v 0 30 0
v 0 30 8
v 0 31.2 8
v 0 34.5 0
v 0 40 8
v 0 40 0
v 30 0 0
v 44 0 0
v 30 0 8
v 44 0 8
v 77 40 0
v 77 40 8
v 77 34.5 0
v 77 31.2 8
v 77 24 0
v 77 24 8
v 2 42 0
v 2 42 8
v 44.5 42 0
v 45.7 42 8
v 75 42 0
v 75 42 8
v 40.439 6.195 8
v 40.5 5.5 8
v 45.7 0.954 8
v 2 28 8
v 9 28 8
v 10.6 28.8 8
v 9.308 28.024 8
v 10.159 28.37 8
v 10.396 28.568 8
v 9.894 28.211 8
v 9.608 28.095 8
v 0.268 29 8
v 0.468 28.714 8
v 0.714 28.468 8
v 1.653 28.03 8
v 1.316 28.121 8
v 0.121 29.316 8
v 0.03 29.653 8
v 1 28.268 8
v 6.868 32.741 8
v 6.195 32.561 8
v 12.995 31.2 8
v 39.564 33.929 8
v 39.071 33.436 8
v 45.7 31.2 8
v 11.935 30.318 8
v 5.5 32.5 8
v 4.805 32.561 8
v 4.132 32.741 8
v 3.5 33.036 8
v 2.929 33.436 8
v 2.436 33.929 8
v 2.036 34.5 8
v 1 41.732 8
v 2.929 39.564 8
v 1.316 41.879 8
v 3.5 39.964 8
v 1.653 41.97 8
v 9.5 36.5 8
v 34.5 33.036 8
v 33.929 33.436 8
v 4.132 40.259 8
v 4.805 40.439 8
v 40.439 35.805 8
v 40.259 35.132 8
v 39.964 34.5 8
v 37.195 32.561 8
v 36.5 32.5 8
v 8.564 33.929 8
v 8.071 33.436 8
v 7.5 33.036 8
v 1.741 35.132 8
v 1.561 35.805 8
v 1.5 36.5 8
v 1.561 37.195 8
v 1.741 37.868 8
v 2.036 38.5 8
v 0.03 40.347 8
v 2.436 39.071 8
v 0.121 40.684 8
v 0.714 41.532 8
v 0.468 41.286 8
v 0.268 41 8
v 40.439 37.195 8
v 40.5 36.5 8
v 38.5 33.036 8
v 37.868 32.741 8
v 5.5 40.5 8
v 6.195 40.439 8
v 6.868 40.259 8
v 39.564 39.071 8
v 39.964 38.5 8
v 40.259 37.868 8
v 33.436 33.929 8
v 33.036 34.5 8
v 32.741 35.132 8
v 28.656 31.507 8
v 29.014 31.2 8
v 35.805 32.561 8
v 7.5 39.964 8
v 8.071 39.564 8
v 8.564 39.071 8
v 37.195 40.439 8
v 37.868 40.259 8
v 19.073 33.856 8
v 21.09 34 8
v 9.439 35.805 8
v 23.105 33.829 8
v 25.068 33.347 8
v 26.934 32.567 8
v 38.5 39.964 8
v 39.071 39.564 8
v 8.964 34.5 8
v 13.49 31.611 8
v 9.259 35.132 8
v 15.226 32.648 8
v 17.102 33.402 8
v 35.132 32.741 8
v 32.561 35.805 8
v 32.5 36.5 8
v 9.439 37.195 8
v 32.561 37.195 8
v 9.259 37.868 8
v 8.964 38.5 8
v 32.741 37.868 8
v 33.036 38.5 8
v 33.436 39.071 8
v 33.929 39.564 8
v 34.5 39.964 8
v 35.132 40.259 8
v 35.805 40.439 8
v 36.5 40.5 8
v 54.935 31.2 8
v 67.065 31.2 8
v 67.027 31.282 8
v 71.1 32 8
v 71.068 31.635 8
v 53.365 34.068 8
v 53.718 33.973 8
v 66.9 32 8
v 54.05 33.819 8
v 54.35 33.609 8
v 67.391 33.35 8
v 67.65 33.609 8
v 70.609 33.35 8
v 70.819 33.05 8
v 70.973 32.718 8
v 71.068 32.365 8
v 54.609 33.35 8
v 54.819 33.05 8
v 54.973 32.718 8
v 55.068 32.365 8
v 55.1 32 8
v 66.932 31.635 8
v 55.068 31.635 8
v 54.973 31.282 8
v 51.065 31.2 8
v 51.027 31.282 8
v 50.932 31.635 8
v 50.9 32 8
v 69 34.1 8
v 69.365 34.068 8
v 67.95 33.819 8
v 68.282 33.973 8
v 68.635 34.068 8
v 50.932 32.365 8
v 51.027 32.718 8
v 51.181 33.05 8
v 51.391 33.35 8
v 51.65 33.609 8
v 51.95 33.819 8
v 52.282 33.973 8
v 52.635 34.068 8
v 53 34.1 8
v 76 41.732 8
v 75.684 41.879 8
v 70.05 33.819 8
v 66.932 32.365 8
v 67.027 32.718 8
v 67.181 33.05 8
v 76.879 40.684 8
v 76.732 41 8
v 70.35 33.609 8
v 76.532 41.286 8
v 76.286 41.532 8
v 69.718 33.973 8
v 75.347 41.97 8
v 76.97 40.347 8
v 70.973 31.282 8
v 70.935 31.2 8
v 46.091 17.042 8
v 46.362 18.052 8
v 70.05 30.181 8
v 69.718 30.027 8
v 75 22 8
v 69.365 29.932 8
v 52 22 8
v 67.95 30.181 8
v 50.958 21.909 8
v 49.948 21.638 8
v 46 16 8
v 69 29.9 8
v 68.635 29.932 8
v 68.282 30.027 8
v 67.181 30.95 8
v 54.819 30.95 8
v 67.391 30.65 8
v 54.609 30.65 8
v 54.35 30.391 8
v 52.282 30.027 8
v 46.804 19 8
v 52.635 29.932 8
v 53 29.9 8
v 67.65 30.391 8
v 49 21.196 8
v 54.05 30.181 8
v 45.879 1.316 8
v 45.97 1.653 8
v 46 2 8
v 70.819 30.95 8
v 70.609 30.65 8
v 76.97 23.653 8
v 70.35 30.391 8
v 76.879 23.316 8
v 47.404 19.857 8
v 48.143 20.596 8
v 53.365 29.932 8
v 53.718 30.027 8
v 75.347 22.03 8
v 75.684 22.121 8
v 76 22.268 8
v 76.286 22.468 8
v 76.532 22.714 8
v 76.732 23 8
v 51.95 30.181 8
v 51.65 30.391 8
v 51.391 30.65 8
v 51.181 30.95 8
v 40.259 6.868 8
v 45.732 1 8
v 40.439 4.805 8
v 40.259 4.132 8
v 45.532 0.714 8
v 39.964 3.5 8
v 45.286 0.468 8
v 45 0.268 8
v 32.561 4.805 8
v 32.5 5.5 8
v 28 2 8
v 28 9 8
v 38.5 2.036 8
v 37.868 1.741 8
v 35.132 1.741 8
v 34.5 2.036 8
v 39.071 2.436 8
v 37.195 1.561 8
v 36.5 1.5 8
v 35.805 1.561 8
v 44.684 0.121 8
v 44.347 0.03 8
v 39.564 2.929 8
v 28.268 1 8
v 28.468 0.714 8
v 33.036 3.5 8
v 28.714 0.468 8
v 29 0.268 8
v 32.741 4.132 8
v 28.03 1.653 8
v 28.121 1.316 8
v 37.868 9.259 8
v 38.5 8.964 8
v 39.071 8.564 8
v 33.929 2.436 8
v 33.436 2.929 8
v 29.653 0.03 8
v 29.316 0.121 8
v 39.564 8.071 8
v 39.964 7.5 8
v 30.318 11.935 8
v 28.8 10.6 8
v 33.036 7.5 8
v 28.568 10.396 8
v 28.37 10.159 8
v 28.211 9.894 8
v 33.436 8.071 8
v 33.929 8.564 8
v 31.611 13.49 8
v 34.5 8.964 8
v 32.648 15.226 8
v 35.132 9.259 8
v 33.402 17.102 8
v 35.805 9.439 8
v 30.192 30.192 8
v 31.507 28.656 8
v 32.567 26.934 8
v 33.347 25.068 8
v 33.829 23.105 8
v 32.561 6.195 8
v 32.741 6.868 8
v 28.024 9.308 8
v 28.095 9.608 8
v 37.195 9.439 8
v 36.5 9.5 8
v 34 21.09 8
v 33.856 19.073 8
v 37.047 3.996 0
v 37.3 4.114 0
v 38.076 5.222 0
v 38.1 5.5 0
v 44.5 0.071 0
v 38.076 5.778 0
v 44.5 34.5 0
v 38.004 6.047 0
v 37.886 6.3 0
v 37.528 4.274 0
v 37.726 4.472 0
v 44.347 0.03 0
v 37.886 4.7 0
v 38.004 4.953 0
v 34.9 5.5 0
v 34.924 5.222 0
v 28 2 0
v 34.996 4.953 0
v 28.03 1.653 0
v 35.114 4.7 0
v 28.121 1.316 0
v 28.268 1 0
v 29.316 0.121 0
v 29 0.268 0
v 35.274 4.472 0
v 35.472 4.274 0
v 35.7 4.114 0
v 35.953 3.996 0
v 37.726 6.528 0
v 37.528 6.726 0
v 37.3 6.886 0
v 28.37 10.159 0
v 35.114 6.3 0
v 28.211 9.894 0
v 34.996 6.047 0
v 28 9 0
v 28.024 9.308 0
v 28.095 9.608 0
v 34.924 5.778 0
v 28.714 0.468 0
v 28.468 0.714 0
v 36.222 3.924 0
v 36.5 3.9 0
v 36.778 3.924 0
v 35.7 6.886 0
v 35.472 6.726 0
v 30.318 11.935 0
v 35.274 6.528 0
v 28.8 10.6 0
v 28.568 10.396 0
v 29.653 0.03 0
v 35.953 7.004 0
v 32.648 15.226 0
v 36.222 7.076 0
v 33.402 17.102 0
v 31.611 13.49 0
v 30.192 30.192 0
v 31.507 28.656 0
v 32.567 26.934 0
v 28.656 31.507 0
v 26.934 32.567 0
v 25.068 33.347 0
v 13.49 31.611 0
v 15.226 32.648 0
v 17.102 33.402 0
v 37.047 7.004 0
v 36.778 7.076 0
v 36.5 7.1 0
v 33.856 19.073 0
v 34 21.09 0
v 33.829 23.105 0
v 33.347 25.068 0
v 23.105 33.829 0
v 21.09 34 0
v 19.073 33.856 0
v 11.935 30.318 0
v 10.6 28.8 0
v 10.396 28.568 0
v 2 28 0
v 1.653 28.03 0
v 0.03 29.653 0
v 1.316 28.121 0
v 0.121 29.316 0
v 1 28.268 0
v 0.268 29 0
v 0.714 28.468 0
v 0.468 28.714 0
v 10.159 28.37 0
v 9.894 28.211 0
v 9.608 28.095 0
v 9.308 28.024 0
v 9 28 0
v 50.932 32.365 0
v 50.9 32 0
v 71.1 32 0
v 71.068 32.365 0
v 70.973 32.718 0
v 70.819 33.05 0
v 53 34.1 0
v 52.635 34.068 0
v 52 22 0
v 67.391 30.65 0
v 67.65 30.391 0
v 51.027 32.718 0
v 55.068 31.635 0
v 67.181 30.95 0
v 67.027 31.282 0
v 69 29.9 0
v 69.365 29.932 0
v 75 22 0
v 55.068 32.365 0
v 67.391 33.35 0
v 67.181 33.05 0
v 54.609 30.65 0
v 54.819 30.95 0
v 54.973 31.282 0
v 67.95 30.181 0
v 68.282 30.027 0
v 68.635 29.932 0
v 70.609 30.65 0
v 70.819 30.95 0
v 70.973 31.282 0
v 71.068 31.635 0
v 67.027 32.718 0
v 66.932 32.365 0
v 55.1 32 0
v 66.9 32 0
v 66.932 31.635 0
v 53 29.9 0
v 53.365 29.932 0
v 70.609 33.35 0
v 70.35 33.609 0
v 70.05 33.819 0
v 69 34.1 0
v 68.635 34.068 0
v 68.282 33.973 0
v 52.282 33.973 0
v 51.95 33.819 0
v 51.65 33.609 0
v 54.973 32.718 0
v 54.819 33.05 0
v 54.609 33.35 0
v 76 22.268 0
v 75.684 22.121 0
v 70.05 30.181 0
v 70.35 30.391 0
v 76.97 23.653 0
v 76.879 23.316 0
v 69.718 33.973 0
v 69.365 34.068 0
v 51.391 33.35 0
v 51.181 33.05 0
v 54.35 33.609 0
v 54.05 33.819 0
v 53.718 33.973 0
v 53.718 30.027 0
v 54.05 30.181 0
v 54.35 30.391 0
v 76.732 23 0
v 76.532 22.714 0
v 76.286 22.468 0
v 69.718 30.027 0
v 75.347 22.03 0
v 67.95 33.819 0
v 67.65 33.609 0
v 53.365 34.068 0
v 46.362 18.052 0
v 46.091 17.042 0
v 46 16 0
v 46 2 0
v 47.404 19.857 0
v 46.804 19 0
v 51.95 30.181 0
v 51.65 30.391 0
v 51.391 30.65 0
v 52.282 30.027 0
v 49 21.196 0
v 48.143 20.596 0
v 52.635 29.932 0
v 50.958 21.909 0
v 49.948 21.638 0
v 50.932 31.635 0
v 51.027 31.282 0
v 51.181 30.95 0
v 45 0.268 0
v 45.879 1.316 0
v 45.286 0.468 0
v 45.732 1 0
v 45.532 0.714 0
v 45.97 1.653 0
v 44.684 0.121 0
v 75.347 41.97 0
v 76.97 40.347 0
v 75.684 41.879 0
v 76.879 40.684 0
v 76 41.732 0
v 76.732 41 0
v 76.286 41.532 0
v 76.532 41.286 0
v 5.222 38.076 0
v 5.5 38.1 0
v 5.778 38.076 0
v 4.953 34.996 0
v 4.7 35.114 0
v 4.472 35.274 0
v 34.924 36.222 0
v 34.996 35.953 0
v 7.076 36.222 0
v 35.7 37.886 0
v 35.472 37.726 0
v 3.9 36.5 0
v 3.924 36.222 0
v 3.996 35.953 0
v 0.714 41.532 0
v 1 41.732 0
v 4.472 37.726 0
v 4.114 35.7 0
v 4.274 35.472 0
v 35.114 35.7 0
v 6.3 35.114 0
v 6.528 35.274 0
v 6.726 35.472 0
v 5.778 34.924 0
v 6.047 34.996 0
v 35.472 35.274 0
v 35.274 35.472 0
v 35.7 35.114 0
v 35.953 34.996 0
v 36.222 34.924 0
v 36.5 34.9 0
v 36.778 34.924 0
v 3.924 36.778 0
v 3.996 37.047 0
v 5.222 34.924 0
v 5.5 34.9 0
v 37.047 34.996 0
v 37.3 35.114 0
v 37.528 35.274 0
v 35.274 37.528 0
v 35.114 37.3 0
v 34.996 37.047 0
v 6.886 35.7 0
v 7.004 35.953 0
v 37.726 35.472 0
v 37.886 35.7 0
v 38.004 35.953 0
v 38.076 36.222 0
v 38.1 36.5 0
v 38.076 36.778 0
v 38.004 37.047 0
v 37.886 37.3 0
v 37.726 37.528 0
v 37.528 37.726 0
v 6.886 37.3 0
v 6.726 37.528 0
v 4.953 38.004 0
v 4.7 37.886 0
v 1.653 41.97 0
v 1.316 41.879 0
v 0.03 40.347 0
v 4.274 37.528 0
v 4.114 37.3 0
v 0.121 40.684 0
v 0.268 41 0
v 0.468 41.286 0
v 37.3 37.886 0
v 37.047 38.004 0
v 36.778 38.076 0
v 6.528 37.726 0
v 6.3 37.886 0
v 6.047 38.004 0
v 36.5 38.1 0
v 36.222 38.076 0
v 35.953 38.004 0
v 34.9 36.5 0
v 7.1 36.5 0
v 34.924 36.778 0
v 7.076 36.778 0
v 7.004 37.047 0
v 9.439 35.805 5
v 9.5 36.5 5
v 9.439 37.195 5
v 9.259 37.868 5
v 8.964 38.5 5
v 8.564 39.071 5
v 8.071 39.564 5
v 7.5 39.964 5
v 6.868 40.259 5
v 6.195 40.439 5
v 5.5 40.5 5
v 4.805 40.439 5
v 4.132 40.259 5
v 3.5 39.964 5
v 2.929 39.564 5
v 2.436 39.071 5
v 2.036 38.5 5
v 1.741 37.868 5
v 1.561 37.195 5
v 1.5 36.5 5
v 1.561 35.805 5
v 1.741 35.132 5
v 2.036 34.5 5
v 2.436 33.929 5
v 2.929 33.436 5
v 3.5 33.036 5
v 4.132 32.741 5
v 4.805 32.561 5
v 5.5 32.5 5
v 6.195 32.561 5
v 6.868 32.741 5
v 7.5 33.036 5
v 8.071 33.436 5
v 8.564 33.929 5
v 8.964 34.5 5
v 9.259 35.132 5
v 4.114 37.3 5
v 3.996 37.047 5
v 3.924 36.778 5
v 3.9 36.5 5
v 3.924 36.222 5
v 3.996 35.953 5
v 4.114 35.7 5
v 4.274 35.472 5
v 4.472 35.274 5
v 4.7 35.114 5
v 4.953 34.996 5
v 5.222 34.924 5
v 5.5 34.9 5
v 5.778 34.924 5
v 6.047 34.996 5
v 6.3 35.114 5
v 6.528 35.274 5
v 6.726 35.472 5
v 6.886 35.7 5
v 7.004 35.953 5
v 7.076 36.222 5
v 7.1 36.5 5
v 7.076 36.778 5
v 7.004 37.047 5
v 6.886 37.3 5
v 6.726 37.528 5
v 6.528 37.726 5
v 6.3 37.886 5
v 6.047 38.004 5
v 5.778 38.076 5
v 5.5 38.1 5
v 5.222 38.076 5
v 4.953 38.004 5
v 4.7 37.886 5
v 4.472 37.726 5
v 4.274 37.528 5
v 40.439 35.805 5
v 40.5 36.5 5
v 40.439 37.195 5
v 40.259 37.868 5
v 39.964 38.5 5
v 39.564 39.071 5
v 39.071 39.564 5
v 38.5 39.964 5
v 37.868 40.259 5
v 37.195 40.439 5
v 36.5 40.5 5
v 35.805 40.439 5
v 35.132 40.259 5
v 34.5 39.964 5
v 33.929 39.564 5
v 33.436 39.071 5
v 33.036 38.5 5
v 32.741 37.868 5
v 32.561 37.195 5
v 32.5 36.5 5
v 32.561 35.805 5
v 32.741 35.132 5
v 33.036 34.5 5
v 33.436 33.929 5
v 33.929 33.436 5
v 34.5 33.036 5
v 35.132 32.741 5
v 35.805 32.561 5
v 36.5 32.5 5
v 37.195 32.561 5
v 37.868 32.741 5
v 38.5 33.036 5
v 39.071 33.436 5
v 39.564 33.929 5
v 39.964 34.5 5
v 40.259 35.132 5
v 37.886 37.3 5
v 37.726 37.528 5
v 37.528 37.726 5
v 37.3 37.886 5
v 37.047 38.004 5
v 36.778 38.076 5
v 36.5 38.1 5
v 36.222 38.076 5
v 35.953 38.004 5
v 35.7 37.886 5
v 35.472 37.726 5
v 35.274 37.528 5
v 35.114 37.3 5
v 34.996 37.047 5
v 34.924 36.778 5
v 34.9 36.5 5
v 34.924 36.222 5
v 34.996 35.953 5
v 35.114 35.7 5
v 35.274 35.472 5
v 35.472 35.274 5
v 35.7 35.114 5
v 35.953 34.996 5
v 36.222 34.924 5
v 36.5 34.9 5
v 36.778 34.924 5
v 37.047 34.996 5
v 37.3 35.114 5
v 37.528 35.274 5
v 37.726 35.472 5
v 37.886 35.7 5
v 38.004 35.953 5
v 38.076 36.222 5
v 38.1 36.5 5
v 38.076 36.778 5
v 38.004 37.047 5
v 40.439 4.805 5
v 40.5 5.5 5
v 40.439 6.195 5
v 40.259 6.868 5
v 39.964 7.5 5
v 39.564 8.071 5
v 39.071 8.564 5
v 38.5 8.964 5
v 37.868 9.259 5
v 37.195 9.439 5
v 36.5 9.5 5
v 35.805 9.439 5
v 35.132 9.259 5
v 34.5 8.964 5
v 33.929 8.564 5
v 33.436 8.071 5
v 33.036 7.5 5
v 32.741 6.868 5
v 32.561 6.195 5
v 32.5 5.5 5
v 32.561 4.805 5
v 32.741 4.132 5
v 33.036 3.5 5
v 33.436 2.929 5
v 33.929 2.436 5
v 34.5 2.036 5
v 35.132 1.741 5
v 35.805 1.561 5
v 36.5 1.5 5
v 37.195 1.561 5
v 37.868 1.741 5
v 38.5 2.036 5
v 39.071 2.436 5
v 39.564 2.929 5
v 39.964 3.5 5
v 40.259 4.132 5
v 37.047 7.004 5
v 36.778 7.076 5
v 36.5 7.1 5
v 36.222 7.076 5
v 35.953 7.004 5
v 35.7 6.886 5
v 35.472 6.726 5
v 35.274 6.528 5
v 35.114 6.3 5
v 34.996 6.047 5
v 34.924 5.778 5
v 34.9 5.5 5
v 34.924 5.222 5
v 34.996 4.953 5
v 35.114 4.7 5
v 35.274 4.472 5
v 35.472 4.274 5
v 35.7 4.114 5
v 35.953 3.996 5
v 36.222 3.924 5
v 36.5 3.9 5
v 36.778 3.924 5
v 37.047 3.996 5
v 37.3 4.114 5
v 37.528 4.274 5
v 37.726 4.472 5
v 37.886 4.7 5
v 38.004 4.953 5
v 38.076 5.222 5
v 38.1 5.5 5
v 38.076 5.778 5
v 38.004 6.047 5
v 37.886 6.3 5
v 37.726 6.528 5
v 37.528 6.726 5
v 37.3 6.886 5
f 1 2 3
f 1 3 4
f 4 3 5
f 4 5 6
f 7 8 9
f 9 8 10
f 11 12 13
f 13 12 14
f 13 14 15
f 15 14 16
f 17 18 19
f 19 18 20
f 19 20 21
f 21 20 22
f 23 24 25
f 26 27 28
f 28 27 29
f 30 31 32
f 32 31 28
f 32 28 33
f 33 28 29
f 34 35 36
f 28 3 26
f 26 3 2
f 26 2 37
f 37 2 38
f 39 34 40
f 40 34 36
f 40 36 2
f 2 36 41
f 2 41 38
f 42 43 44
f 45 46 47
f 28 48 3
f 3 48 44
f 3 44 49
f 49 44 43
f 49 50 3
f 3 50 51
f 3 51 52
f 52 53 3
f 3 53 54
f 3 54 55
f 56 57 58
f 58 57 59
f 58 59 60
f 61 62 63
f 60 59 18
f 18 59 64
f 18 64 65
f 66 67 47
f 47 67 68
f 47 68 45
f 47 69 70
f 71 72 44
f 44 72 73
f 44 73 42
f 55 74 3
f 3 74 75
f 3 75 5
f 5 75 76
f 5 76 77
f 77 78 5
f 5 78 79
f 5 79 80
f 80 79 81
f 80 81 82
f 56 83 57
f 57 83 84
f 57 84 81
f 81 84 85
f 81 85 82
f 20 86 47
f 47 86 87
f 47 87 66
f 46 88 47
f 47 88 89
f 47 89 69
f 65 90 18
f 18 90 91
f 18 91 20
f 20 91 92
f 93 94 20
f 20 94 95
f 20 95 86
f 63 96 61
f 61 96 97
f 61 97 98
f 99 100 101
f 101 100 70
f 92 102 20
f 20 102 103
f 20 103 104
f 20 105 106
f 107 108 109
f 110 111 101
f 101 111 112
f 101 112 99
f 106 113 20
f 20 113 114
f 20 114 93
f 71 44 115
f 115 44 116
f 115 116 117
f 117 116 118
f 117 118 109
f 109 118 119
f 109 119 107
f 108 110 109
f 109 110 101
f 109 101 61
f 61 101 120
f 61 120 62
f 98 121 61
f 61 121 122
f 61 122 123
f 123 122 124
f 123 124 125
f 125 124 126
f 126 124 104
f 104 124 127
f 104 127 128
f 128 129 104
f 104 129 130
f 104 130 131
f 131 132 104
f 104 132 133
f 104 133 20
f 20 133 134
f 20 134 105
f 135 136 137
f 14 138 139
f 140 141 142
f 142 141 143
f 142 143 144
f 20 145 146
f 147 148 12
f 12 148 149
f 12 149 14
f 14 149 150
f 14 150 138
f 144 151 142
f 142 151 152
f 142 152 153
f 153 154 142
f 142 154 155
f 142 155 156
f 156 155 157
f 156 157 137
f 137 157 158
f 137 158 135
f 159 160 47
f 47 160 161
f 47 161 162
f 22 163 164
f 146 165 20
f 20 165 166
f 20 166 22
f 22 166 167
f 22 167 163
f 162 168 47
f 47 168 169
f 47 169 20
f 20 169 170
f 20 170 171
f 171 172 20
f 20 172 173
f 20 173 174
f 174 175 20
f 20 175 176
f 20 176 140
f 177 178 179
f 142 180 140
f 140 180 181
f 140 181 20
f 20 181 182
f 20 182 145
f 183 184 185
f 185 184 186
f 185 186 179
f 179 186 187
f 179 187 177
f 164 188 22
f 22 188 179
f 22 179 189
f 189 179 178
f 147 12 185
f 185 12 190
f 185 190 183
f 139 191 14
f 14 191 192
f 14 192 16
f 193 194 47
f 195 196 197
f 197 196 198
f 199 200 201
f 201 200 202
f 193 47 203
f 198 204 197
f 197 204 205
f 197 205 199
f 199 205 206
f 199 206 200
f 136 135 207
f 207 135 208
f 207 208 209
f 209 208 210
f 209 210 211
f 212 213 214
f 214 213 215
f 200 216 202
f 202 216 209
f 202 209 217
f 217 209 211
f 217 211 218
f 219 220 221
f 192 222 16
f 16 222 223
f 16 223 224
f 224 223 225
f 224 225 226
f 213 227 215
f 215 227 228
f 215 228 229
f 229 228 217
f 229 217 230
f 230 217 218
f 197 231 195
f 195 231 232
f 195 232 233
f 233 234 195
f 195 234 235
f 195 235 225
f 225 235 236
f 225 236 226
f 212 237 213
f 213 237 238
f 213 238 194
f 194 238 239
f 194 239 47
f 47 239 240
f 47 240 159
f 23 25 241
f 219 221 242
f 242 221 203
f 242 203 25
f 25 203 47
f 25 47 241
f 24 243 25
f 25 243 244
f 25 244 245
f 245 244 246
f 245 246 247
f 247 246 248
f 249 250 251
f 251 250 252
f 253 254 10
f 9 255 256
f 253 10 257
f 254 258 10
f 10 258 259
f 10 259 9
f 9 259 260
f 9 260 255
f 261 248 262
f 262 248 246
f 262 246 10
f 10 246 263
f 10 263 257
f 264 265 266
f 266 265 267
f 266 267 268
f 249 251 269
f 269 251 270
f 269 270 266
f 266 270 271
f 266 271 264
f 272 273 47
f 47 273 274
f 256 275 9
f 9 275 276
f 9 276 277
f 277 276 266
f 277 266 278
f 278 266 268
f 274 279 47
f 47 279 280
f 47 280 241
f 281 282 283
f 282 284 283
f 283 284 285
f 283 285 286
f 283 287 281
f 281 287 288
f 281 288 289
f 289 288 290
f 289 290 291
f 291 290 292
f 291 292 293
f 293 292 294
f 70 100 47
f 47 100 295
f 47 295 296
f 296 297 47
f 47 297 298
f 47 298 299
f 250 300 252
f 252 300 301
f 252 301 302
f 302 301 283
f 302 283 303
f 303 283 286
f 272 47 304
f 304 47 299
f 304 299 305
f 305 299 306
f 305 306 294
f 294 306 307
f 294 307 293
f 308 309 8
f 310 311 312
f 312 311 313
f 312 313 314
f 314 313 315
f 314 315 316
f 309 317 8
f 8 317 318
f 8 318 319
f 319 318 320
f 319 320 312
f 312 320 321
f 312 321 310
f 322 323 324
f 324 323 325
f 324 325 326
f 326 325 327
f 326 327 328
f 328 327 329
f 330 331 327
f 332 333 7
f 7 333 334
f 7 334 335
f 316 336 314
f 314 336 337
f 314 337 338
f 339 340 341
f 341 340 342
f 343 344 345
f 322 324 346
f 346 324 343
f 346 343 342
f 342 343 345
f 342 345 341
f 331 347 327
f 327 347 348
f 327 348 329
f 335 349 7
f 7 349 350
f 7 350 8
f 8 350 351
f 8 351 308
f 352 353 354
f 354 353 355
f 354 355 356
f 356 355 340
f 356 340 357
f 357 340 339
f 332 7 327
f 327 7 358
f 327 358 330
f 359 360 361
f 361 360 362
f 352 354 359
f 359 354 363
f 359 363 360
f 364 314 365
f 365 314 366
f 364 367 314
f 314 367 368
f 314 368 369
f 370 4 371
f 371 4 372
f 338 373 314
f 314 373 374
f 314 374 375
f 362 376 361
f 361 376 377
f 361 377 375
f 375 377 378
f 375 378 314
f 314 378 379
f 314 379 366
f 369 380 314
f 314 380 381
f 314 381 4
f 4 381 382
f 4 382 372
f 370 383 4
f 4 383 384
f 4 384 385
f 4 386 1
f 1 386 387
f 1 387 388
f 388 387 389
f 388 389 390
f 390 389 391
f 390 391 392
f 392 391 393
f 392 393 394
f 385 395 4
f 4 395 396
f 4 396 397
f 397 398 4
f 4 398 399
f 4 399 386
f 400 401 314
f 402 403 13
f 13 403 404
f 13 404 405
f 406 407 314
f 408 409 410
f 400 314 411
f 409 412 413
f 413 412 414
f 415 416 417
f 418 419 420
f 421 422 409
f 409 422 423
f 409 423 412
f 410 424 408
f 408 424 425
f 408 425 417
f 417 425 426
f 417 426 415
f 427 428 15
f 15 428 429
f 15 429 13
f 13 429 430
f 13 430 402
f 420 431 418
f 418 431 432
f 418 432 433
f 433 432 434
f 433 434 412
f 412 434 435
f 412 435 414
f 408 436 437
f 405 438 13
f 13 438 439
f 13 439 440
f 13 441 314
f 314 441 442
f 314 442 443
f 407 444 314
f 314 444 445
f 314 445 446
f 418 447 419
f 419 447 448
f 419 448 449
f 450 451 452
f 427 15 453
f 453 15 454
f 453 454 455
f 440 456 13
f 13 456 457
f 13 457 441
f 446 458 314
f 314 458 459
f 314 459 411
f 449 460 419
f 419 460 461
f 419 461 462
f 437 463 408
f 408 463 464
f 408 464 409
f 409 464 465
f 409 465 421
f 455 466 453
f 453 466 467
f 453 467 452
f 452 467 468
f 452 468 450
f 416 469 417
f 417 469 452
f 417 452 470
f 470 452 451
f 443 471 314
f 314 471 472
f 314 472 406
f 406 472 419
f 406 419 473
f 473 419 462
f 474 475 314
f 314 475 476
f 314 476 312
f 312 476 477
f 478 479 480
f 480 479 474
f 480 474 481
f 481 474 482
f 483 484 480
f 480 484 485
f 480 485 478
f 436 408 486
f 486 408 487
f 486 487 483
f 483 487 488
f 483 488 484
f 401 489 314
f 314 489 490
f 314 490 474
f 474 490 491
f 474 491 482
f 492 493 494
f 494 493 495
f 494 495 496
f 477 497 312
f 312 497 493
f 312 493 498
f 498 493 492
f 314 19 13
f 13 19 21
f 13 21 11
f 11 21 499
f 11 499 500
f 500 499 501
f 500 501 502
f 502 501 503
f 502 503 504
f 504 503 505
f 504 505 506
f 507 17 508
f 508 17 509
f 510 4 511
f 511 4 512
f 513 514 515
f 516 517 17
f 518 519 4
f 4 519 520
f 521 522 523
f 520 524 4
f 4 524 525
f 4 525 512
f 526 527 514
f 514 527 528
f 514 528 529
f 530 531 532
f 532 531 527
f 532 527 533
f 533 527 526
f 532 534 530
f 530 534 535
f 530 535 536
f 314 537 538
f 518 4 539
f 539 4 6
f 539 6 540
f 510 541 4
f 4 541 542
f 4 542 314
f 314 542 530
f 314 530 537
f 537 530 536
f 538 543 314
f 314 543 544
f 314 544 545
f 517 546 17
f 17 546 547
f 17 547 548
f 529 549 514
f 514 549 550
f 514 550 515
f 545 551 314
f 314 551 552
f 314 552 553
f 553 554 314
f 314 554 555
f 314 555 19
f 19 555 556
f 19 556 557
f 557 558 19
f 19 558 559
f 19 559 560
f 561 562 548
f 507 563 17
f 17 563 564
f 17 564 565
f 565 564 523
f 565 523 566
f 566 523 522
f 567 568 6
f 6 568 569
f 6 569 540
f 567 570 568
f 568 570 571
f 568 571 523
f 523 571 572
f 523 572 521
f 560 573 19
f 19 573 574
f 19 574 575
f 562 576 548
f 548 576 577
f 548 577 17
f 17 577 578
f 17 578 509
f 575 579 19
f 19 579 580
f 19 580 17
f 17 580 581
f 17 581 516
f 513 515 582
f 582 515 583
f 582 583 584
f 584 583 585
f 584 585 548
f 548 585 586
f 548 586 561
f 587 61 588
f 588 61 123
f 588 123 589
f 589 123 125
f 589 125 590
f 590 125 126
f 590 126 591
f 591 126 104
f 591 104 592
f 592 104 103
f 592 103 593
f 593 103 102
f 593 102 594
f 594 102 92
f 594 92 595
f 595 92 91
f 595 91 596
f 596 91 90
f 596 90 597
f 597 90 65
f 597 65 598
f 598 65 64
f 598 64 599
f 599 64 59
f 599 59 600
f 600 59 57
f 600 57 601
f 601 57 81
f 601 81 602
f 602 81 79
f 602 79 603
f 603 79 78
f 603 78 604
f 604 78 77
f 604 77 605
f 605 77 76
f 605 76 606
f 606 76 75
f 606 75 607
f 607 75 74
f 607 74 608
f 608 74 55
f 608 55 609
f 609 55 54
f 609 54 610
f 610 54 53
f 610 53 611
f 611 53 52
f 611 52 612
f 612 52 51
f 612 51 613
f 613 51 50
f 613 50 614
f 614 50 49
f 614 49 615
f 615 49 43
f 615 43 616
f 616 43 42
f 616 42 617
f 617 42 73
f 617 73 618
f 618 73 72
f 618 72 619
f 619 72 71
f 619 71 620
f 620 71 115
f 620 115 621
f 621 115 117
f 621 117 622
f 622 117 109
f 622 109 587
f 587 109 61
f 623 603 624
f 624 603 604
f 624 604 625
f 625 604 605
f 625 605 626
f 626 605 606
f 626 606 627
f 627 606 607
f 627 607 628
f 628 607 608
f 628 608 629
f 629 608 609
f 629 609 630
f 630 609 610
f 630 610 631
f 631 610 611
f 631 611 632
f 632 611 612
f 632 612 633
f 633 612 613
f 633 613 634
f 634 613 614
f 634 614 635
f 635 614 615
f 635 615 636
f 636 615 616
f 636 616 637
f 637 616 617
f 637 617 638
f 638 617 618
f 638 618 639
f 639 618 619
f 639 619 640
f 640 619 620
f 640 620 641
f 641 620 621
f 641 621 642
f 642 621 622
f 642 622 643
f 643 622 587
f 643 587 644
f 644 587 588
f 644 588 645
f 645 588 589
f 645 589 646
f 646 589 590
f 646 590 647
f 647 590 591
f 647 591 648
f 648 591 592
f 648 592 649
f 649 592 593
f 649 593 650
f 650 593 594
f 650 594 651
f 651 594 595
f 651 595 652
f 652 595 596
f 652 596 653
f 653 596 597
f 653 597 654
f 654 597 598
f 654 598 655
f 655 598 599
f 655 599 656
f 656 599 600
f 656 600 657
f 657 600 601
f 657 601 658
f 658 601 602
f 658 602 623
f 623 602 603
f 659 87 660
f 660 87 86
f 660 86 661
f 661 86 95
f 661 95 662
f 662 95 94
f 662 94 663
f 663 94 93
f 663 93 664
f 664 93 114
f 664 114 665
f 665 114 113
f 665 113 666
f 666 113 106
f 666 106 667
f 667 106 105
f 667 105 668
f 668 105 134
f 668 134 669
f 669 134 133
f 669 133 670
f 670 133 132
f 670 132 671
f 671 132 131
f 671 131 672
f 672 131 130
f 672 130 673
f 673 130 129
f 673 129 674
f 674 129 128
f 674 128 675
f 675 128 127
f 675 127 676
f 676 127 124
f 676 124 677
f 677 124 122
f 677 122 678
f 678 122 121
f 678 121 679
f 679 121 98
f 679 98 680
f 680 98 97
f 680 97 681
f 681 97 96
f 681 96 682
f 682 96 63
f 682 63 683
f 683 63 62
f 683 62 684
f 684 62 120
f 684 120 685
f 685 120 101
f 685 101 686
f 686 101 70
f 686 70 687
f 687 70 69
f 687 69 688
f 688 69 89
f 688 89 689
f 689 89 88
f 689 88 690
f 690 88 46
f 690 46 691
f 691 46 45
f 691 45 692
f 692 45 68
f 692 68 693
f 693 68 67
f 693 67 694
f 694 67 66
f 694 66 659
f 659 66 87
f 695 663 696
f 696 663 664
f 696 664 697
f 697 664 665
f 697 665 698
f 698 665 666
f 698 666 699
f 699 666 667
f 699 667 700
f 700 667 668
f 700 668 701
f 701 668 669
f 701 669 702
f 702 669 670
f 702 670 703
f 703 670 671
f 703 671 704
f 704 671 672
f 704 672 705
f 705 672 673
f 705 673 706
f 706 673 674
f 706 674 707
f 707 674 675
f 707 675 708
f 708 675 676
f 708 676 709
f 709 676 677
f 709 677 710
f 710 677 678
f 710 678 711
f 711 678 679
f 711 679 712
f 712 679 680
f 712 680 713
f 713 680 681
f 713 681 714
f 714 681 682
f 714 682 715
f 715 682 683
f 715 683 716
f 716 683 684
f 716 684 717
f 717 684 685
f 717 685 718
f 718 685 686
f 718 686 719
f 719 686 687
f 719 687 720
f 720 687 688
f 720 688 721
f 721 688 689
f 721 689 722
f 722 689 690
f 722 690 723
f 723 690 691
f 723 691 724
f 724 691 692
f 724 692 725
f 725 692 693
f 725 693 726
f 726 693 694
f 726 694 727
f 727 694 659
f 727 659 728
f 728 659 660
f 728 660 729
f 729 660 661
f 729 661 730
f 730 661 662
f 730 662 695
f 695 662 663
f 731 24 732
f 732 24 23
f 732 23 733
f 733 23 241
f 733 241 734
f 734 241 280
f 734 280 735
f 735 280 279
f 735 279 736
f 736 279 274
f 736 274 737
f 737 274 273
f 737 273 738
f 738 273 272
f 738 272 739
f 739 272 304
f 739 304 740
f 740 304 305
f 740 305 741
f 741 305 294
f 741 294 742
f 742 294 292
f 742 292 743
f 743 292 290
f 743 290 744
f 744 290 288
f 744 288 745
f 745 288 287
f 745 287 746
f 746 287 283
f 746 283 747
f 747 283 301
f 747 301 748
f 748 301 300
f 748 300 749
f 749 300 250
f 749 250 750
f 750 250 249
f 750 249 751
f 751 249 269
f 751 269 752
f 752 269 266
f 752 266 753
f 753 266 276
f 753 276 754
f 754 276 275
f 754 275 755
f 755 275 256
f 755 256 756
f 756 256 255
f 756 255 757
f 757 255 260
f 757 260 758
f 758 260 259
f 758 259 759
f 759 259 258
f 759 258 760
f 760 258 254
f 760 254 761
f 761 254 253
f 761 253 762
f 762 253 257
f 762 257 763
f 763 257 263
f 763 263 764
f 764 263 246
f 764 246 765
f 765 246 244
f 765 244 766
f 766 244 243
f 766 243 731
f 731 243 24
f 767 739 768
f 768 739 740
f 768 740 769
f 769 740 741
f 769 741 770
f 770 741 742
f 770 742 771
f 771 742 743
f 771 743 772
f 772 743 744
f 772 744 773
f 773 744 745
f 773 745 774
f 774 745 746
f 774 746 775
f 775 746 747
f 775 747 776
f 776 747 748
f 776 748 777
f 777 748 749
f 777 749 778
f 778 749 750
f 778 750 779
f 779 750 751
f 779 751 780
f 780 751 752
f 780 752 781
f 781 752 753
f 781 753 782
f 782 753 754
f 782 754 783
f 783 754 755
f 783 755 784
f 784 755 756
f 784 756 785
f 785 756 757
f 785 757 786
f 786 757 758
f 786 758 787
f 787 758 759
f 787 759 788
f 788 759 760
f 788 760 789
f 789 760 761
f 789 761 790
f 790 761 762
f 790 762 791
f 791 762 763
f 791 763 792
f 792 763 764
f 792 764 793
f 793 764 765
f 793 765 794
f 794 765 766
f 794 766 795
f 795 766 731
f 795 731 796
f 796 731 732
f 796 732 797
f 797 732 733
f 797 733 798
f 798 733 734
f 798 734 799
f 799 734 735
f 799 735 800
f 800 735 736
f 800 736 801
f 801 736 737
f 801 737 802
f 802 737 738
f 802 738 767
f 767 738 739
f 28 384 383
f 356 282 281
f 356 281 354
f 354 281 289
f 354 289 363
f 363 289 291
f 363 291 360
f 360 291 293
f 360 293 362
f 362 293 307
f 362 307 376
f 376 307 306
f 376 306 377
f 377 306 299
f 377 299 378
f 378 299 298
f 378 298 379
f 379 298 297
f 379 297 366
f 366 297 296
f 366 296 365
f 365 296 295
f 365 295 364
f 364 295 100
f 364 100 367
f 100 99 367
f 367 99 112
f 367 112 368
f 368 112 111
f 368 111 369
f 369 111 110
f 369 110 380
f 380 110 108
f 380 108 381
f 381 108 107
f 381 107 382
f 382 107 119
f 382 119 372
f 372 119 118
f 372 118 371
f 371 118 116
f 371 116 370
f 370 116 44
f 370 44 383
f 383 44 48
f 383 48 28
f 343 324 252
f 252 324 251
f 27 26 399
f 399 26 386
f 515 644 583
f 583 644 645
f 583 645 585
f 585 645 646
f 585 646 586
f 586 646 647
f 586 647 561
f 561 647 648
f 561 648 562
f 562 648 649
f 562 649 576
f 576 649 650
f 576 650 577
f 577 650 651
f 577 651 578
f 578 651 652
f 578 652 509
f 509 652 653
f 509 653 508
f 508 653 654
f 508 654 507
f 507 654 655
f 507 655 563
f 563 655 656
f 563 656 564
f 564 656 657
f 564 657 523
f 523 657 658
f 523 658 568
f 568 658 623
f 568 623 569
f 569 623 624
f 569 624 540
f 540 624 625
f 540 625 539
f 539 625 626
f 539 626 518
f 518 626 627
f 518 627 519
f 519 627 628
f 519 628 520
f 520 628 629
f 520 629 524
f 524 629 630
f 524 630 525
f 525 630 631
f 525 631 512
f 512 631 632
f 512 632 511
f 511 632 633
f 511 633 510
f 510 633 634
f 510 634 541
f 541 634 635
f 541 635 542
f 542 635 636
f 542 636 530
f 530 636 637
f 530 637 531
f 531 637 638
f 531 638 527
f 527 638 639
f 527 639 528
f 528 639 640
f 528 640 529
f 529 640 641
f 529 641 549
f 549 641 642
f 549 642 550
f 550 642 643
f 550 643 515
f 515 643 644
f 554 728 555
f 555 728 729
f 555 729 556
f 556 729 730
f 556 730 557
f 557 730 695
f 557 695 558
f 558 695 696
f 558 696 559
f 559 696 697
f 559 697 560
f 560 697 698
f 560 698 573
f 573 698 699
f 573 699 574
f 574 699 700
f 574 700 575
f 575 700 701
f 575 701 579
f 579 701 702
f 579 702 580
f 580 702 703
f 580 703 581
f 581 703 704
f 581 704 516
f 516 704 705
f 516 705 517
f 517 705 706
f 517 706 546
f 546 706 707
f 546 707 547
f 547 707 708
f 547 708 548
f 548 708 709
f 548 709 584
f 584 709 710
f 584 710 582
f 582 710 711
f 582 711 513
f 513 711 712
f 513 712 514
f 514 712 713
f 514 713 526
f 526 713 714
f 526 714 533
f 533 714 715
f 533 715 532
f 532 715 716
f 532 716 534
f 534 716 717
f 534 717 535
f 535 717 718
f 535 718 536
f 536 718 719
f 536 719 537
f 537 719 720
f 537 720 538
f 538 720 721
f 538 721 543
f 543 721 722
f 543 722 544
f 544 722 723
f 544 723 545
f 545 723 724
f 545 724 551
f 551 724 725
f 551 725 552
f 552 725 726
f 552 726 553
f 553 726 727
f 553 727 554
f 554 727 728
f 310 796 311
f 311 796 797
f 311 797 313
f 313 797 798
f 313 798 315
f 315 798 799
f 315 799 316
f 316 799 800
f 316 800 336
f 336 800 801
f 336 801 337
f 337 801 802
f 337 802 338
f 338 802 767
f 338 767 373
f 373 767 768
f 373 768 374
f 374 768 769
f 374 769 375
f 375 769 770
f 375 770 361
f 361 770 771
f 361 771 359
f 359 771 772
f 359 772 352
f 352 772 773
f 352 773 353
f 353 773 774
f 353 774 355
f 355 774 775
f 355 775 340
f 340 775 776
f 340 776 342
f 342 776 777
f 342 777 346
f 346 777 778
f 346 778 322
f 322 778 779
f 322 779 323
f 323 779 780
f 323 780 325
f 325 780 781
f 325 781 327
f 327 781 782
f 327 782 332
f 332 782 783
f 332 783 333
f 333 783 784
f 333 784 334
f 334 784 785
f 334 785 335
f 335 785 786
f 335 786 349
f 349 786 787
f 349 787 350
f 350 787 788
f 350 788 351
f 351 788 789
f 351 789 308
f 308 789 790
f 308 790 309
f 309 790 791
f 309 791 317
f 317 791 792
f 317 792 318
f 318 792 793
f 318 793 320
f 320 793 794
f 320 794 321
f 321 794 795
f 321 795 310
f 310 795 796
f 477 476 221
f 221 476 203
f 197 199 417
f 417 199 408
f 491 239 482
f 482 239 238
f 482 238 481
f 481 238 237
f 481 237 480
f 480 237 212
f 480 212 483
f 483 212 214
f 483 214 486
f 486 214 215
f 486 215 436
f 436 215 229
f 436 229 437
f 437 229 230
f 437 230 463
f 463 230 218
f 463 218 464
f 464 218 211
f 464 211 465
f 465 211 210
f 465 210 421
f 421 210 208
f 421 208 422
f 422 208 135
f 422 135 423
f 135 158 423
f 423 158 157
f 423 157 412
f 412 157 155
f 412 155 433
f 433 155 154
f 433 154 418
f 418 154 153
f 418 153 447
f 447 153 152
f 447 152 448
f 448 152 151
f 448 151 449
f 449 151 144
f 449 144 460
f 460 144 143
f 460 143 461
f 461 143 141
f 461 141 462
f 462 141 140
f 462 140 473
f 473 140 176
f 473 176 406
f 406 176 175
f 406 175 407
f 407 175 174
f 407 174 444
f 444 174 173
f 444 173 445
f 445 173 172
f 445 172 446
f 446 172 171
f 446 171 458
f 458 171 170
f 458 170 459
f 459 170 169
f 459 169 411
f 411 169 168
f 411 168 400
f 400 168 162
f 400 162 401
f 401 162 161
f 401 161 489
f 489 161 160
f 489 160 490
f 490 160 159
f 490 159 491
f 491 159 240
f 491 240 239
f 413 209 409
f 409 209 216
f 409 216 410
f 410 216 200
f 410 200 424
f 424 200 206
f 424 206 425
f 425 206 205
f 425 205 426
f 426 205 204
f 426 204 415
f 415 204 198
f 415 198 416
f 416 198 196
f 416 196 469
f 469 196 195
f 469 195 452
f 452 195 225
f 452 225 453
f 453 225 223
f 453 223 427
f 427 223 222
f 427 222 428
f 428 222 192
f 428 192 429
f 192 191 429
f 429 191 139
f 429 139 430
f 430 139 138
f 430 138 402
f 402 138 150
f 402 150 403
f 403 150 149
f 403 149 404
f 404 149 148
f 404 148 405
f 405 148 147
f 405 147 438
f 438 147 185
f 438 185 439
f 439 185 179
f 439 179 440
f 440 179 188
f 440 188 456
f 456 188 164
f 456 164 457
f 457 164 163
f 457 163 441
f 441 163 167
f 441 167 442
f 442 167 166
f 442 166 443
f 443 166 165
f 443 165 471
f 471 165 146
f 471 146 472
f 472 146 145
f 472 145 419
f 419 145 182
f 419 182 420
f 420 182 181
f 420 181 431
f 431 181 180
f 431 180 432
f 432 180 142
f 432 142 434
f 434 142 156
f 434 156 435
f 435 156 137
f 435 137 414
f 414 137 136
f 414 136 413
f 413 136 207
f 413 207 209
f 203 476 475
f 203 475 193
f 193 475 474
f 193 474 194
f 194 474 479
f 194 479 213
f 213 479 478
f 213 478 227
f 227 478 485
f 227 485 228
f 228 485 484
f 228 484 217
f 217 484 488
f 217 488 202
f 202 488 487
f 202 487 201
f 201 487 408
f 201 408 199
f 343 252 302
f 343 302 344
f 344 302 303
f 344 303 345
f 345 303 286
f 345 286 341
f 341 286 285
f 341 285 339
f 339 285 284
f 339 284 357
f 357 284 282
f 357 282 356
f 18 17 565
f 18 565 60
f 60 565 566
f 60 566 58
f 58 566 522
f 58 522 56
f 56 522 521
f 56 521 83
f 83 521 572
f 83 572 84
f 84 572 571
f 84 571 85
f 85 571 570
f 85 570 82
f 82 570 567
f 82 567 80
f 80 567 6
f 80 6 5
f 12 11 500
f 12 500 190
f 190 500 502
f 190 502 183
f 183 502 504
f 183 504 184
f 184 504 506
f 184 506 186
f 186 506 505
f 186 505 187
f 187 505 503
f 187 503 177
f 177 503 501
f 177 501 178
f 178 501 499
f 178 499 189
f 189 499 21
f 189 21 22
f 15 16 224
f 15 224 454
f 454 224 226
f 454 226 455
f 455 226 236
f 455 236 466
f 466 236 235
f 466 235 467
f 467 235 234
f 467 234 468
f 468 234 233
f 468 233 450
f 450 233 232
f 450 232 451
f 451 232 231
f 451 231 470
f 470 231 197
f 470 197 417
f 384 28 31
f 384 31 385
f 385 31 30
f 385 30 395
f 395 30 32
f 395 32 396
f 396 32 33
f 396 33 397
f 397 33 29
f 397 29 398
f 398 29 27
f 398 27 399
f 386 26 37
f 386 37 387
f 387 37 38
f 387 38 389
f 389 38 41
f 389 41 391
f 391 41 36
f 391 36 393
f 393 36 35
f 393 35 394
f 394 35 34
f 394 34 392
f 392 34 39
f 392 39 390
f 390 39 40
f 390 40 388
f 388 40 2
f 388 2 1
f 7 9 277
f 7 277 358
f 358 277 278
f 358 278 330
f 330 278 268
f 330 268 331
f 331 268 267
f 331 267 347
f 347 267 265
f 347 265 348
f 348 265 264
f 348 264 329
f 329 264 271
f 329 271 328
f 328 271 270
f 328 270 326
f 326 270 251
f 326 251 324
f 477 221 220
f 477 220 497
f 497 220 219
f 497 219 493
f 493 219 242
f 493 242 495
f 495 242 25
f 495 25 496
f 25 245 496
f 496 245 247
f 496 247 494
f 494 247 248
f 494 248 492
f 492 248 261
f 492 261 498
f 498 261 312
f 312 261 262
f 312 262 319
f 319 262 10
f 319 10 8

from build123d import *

# Parameters (mm, degrees)
ESQUISSE1_W             = 77
ESQUISSE1_H             = 42
BOSS_EXTRU_1_DEPTH      = 8
ESQUISSE3_R             = 4
ENL_V_MAT_EXTRU_1_DEPTH = 3
ESQUISSE4_R             = 13
ENL_V_MAT_EXTRU_2_DEPTH = 9
ESQUISSE5_W             = 28
ESQUISSE5_H             = 28
ENL_V_MAT_EXTRU_3_DEPTH = 9
ESQUISSE10_R            = 1.6
ENL_V_MAT_EXTRU_4_DEPTH = 6
ESQUISSE11_W            = 31
ESQUISSE11_H            = 22
ENL_V_MAT_EXTRU_5_DEPTH = 9
ESQUISSE12_R            = 2.1
ENL_V_MAT_EXTRU_6_DEPTH = 9
CONG_1_R                = 6
CONG_2_R                = 2


with BuildPart() as part:
    # Esquisse1 → Boss.-Extru.1 (new body)
    with BuildSketch(Plane.XY):
        with Locations((38.5, 21)):
            Rectangle(ESQUISSE1_W, ESQUISSE1_H)
    extrude(amount=BOSS_EXTRU_1_DEPTH)

    # Esquisse3 → Enlèv. mat.-Extru.1 (cut)
    with BuildSketch(Plane.XY.offset(8)):
        with Locations((5.5, 36.5)):
            Circle(ESQUISSE3_R)
        with Locations((36.5, 36.5)):
            Circle(ESQUISSE3_R)
        with Locations((36.5, 5.5)):
            Circle(ESQUISSE3_R)
    extrude(amount=-ENL_V_MAT_EXTRU_1_DEPTH, mode=Mode.SUBTRACT)

    # Esquisse4 → Enlèv. mat.-Extru.2 (cut, through all)
    with BuildSketch(Plane.XY.offset(8)):
        with Locations((21, 21)):
            Circle(ESQUISSE4_R)
    extrude(amount=-ENL_V_MAT_EXTRU_2_DEPTH, mode=Mode.SUBTRACT)

    # Esquisse5 → Enlèv. mat.-Extru.3 (cut, through all)
    with BuildSketch(Plane.XY.offset(8)):
        with Locations((14, 14)):
            Rectangle(ESQUISSE5_W, ESQUISSE5_H)
    extrude(amount=-ENL_V_MAT_EXTRU_3_DEPTH, mode=Mode.SUBTRACT)

    # Esquisse10 → Enlèv. mat.-Extru.4 (cut, through all)
    with BuildSketch(Plane.XY.offset(5)):
        with Locations((5.5, 36.5)):
            Circle(ESQUISSE10_R)
        with Locations((36.5, 36.5)):
            Circle(ESQUISSE10_R)
        with Locations((36.5, 5.5)):
            Circle(ESQUISSE10_R)
    extrude(amount=-ENL_V_MAT_EXTRU_4_DEPTH, mode=Mode.SUBTRACT)

    # Esquisse11 → Enlèv. mat.-Extru.5 (cut, through all)
    with BuildSketch(Plane.XY.offset(8)):
        with Locations((61.5, 11)):
            Rectangle(ESQUISSE11_W, ESQUISSE11_H)
    extrude(amount=-ENL_V_MAT_EXTRU_5_DEPTH, mode=Mode.SUBTRACT)

    # Esquisse12 → Enlèv. mat.-Extru.6 (cut, through all)
    with BuildSketch(Plane.XY.offset(8)):
        with Locations((53, 32)):
            Circle(ESQUISSE12_R)
        with Locations((69, 32)):
            Circle(ESQUISSE12_R)
    extrude(amount=-ENL_V_MAT_EXTRU_6_DEPTH, mode=Mode.SUBTRACT)

    # Congé1
    cong_1_edges = [part.edges().sort_by_distance(p)[0] for p in [
        (46, 22, 4),
    ]]
    fillet(cong_1_edges, radius=CONG_1_R)

    # Congé2
    cong_2_edges = [part.edges().sort_by_distance(p)[0] for p in [
        (28, 10.04554885, 4),
        (10.04554885, 28, 4),
        (0, 28, 4),
        (28, 0, 4),
        (77, 22, 4),
        (46, 0, 4),
        (0, 42, 4),
        (77, 42, 4),
    ]]
    fillet(cong_2_edges, radius=CONG_2_R)


solid = part.part
